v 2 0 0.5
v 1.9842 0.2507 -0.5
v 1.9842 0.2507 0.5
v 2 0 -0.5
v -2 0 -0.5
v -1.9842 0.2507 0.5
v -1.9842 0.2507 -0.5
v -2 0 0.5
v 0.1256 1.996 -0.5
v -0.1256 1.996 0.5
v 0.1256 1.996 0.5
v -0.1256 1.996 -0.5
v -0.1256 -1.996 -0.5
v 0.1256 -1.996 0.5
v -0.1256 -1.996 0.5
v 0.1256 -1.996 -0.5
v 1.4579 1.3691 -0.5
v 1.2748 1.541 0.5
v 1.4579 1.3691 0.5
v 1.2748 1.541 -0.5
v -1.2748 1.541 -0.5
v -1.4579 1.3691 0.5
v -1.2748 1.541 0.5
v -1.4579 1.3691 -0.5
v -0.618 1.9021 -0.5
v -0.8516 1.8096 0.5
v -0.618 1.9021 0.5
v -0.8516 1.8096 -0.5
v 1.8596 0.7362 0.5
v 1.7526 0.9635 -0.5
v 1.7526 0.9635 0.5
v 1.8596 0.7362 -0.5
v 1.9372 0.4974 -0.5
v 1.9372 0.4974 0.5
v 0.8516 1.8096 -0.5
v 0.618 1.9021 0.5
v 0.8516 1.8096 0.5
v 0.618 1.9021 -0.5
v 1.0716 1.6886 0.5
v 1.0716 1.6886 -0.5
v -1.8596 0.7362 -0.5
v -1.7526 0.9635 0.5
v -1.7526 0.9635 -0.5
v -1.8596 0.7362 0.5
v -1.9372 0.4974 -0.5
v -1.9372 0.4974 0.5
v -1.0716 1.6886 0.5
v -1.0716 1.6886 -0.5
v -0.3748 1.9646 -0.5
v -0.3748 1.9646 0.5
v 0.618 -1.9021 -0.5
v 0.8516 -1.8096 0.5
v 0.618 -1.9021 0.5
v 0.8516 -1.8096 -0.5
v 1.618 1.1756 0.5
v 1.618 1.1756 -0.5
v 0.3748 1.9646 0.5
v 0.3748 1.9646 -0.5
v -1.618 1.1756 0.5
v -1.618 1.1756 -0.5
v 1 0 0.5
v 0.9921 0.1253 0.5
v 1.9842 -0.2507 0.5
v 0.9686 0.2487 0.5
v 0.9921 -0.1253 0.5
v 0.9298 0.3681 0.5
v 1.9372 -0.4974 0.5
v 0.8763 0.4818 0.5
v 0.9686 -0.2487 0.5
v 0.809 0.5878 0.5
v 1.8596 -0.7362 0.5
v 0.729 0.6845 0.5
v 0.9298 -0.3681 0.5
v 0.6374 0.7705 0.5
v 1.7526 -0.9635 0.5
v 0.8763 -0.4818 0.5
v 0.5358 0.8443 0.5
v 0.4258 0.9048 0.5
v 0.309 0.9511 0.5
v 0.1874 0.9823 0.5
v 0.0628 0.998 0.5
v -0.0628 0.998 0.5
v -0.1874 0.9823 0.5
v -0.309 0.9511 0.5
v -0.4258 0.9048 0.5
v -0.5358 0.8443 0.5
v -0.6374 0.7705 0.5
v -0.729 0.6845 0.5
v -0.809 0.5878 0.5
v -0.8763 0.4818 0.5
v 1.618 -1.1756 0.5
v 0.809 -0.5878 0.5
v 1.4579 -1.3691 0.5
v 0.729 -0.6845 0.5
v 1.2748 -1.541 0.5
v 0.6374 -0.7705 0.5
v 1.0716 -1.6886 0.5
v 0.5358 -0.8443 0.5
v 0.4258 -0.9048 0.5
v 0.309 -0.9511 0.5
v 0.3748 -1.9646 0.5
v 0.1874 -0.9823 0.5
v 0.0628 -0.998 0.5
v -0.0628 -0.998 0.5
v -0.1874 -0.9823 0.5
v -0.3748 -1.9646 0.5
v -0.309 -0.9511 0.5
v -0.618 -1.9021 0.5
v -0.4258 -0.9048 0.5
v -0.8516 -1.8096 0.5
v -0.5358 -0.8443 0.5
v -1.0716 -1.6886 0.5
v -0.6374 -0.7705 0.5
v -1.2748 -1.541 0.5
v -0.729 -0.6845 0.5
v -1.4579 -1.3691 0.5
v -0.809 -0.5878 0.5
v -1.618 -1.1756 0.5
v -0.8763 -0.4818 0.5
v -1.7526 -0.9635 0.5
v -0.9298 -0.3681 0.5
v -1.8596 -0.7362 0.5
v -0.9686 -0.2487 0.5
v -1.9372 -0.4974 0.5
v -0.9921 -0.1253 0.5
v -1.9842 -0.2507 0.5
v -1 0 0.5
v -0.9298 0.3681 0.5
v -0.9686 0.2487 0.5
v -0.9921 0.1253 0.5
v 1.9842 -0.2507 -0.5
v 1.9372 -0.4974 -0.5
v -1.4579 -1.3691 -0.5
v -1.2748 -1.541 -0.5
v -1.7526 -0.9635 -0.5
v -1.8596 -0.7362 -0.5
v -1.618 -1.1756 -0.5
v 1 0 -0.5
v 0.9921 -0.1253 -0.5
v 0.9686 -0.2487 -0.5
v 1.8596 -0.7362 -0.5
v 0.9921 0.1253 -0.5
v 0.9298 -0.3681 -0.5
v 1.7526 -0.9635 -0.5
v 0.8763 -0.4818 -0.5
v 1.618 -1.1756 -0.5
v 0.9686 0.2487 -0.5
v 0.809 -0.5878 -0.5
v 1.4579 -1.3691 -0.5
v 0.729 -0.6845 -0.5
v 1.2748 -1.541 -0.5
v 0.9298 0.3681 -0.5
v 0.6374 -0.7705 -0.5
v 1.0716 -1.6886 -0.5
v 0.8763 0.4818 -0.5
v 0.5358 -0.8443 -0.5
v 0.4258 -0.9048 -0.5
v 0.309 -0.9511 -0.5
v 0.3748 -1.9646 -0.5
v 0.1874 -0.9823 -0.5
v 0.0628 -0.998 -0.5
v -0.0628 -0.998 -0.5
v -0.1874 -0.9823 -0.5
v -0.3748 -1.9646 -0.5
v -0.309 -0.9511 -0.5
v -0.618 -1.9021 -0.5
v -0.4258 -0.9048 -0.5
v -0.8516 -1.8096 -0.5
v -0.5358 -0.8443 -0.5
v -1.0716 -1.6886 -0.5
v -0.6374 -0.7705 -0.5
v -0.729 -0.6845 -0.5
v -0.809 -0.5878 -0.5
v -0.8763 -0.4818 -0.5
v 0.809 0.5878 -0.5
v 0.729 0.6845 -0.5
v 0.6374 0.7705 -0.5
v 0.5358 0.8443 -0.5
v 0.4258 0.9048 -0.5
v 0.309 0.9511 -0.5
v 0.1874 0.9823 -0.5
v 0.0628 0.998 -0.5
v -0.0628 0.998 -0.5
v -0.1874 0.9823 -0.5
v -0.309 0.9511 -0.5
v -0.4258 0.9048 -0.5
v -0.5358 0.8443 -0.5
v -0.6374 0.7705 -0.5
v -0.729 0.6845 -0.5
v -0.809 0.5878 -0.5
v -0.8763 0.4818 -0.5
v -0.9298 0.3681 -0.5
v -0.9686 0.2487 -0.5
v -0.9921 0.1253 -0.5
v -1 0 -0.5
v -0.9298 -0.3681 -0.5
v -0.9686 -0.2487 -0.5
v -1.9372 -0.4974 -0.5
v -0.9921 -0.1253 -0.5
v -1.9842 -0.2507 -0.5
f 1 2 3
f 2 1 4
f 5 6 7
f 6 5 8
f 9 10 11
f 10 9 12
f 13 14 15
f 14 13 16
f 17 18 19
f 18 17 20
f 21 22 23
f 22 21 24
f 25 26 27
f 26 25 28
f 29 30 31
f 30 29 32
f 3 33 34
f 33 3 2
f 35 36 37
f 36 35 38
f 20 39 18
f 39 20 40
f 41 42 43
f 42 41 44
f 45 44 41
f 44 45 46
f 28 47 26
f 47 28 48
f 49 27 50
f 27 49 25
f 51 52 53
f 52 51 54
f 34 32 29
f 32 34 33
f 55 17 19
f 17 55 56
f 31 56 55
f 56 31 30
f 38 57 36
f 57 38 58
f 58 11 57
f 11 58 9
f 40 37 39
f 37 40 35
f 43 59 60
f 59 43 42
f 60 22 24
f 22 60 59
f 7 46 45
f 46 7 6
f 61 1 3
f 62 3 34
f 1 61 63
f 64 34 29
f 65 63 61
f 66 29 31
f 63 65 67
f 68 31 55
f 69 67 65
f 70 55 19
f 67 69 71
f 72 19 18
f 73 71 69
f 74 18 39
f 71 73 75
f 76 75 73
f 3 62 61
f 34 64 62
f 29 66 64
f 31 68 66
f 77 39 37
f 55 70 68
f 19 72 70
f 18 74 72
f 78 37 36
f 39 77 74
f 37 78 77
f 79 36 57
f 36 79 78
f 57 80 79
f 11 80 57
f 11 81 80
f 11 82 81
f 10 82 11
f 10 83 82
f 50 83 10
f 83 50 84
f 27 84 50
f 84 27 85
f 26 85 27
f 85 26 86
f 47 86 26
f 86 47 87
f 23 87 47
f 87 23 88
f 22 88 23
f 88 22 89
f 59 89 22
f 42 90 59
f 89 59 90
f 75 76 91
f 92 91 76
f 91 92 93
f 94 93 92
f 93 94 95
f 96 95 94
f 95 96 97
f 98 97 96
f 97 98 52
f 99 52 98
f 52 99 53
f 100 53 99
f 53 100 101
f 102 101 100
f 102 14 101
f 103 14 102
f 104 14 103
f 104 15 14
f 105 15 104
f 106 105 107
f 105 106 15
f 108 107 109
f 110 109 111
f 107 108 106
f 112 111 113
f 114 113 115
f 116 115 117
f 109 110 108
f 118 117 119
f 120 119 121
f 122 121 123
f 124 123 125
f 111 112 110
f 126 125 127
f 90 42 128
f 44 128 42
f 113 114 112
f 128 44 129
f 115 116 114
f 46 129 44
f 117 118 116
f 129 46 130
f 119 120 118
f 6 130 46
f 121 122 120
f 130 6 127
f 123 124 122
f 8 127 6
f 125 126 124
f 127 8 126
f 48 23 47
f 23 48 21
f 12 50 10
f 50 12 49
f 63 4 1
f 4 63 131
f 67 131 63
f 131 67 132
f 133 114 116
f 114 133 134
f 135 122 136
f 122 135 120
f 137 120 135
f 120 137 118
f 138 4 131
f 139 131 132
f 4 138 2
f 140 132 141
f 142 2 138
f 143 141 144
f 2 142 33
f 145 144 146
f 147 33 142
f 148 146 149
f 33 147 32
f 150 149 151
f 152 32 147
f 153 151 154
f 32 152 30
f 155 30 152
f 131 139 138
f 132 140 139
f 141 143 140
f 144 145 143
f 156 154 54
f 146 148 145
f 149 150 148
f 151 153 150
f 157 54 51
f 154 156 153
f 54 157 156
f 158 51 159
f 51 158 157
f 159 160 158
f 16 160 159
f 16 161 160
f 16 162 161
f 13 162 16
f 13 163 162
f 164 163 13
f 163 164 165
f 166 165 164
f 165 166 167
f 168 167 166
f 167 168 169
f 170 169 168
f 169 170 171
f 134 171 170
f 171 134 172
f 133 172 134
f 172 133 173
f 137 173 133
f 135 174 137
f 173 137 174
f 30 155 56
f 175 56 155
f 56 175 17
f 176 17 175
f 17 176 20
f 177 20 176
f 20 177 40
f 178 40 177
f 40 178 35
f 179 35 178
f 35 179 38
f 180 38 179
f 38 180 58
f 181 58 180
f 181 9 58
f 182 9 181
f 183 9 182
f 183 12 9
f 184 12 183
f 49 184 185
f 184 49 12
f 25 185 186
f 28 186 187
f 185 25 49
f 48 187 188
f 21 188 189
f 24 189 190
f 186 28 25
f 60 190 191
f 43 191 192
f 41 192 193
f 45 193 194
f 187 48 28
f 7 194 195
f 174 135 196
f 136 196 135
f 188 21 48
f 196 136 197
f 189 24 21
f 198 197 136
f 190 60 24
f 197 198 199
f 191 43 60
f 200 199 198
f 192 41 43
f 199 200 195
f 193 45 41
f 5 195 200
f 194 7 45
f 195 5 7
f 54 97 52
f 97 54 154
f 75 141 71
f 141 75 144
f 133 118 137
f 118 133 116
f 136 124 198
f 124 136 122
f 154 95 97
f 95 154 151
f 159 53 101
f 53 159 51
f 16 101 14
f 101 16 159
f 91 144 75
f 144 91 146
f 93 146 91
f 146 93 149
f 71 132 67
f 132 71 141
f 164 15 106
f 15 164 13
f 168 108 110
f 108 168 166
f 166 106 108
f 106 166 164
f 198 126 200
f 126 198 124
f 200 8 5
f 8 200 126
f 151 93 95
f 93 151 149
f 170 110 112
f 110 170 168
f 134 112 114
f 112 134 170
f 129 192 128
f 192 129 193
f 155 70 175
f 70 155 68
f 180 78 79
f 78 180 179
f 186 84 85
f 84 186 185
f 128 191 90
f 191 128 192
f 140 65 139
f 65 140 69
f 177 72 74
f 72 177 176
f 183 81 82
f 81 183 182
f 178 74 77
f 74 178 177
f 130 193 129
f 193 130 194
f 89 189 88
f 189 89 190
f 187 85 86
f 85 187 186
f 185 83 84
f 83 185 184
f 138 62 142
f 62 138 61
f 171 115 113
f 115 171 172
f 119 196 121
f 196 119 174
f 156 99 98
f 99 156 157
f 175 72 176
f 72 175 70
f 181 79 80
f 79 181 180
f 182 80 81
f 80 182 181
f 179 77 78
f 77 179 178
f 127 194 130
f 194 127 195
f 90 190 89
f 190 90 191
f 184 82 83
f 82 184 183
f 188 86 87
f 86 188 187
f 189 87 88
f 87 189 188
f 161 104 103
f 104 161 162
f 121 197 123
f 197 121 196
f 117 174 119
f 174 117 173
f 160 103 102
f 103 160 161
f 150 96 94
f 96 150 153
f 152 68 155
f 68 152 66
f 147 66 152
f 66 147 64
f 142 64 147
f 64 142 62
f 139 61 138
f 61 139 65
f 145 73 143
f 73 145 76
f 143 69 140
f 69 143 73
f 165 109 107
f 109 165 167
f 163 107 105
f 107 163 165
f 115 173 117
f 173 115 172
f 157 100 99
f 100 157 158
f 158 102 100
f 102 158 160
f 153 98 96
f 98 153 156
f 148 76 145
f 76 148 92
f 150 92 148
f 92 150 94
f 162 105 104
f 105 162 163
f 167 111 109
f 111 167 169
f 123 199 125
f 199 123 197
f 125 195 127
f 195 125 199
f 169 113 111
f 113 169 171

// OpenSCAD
$fn = 50;


difference() {
	union() {
		translate(v = [0, 0, -0.5000000000]) {
			cylinder(h = 1, r = 2.0000000000);
		}
	}
	union() {
		translate(v = [0, 0, -100.0000000000]) {
			cylinder(h = 200, r = 1.0000000000);
		}
	}
}
